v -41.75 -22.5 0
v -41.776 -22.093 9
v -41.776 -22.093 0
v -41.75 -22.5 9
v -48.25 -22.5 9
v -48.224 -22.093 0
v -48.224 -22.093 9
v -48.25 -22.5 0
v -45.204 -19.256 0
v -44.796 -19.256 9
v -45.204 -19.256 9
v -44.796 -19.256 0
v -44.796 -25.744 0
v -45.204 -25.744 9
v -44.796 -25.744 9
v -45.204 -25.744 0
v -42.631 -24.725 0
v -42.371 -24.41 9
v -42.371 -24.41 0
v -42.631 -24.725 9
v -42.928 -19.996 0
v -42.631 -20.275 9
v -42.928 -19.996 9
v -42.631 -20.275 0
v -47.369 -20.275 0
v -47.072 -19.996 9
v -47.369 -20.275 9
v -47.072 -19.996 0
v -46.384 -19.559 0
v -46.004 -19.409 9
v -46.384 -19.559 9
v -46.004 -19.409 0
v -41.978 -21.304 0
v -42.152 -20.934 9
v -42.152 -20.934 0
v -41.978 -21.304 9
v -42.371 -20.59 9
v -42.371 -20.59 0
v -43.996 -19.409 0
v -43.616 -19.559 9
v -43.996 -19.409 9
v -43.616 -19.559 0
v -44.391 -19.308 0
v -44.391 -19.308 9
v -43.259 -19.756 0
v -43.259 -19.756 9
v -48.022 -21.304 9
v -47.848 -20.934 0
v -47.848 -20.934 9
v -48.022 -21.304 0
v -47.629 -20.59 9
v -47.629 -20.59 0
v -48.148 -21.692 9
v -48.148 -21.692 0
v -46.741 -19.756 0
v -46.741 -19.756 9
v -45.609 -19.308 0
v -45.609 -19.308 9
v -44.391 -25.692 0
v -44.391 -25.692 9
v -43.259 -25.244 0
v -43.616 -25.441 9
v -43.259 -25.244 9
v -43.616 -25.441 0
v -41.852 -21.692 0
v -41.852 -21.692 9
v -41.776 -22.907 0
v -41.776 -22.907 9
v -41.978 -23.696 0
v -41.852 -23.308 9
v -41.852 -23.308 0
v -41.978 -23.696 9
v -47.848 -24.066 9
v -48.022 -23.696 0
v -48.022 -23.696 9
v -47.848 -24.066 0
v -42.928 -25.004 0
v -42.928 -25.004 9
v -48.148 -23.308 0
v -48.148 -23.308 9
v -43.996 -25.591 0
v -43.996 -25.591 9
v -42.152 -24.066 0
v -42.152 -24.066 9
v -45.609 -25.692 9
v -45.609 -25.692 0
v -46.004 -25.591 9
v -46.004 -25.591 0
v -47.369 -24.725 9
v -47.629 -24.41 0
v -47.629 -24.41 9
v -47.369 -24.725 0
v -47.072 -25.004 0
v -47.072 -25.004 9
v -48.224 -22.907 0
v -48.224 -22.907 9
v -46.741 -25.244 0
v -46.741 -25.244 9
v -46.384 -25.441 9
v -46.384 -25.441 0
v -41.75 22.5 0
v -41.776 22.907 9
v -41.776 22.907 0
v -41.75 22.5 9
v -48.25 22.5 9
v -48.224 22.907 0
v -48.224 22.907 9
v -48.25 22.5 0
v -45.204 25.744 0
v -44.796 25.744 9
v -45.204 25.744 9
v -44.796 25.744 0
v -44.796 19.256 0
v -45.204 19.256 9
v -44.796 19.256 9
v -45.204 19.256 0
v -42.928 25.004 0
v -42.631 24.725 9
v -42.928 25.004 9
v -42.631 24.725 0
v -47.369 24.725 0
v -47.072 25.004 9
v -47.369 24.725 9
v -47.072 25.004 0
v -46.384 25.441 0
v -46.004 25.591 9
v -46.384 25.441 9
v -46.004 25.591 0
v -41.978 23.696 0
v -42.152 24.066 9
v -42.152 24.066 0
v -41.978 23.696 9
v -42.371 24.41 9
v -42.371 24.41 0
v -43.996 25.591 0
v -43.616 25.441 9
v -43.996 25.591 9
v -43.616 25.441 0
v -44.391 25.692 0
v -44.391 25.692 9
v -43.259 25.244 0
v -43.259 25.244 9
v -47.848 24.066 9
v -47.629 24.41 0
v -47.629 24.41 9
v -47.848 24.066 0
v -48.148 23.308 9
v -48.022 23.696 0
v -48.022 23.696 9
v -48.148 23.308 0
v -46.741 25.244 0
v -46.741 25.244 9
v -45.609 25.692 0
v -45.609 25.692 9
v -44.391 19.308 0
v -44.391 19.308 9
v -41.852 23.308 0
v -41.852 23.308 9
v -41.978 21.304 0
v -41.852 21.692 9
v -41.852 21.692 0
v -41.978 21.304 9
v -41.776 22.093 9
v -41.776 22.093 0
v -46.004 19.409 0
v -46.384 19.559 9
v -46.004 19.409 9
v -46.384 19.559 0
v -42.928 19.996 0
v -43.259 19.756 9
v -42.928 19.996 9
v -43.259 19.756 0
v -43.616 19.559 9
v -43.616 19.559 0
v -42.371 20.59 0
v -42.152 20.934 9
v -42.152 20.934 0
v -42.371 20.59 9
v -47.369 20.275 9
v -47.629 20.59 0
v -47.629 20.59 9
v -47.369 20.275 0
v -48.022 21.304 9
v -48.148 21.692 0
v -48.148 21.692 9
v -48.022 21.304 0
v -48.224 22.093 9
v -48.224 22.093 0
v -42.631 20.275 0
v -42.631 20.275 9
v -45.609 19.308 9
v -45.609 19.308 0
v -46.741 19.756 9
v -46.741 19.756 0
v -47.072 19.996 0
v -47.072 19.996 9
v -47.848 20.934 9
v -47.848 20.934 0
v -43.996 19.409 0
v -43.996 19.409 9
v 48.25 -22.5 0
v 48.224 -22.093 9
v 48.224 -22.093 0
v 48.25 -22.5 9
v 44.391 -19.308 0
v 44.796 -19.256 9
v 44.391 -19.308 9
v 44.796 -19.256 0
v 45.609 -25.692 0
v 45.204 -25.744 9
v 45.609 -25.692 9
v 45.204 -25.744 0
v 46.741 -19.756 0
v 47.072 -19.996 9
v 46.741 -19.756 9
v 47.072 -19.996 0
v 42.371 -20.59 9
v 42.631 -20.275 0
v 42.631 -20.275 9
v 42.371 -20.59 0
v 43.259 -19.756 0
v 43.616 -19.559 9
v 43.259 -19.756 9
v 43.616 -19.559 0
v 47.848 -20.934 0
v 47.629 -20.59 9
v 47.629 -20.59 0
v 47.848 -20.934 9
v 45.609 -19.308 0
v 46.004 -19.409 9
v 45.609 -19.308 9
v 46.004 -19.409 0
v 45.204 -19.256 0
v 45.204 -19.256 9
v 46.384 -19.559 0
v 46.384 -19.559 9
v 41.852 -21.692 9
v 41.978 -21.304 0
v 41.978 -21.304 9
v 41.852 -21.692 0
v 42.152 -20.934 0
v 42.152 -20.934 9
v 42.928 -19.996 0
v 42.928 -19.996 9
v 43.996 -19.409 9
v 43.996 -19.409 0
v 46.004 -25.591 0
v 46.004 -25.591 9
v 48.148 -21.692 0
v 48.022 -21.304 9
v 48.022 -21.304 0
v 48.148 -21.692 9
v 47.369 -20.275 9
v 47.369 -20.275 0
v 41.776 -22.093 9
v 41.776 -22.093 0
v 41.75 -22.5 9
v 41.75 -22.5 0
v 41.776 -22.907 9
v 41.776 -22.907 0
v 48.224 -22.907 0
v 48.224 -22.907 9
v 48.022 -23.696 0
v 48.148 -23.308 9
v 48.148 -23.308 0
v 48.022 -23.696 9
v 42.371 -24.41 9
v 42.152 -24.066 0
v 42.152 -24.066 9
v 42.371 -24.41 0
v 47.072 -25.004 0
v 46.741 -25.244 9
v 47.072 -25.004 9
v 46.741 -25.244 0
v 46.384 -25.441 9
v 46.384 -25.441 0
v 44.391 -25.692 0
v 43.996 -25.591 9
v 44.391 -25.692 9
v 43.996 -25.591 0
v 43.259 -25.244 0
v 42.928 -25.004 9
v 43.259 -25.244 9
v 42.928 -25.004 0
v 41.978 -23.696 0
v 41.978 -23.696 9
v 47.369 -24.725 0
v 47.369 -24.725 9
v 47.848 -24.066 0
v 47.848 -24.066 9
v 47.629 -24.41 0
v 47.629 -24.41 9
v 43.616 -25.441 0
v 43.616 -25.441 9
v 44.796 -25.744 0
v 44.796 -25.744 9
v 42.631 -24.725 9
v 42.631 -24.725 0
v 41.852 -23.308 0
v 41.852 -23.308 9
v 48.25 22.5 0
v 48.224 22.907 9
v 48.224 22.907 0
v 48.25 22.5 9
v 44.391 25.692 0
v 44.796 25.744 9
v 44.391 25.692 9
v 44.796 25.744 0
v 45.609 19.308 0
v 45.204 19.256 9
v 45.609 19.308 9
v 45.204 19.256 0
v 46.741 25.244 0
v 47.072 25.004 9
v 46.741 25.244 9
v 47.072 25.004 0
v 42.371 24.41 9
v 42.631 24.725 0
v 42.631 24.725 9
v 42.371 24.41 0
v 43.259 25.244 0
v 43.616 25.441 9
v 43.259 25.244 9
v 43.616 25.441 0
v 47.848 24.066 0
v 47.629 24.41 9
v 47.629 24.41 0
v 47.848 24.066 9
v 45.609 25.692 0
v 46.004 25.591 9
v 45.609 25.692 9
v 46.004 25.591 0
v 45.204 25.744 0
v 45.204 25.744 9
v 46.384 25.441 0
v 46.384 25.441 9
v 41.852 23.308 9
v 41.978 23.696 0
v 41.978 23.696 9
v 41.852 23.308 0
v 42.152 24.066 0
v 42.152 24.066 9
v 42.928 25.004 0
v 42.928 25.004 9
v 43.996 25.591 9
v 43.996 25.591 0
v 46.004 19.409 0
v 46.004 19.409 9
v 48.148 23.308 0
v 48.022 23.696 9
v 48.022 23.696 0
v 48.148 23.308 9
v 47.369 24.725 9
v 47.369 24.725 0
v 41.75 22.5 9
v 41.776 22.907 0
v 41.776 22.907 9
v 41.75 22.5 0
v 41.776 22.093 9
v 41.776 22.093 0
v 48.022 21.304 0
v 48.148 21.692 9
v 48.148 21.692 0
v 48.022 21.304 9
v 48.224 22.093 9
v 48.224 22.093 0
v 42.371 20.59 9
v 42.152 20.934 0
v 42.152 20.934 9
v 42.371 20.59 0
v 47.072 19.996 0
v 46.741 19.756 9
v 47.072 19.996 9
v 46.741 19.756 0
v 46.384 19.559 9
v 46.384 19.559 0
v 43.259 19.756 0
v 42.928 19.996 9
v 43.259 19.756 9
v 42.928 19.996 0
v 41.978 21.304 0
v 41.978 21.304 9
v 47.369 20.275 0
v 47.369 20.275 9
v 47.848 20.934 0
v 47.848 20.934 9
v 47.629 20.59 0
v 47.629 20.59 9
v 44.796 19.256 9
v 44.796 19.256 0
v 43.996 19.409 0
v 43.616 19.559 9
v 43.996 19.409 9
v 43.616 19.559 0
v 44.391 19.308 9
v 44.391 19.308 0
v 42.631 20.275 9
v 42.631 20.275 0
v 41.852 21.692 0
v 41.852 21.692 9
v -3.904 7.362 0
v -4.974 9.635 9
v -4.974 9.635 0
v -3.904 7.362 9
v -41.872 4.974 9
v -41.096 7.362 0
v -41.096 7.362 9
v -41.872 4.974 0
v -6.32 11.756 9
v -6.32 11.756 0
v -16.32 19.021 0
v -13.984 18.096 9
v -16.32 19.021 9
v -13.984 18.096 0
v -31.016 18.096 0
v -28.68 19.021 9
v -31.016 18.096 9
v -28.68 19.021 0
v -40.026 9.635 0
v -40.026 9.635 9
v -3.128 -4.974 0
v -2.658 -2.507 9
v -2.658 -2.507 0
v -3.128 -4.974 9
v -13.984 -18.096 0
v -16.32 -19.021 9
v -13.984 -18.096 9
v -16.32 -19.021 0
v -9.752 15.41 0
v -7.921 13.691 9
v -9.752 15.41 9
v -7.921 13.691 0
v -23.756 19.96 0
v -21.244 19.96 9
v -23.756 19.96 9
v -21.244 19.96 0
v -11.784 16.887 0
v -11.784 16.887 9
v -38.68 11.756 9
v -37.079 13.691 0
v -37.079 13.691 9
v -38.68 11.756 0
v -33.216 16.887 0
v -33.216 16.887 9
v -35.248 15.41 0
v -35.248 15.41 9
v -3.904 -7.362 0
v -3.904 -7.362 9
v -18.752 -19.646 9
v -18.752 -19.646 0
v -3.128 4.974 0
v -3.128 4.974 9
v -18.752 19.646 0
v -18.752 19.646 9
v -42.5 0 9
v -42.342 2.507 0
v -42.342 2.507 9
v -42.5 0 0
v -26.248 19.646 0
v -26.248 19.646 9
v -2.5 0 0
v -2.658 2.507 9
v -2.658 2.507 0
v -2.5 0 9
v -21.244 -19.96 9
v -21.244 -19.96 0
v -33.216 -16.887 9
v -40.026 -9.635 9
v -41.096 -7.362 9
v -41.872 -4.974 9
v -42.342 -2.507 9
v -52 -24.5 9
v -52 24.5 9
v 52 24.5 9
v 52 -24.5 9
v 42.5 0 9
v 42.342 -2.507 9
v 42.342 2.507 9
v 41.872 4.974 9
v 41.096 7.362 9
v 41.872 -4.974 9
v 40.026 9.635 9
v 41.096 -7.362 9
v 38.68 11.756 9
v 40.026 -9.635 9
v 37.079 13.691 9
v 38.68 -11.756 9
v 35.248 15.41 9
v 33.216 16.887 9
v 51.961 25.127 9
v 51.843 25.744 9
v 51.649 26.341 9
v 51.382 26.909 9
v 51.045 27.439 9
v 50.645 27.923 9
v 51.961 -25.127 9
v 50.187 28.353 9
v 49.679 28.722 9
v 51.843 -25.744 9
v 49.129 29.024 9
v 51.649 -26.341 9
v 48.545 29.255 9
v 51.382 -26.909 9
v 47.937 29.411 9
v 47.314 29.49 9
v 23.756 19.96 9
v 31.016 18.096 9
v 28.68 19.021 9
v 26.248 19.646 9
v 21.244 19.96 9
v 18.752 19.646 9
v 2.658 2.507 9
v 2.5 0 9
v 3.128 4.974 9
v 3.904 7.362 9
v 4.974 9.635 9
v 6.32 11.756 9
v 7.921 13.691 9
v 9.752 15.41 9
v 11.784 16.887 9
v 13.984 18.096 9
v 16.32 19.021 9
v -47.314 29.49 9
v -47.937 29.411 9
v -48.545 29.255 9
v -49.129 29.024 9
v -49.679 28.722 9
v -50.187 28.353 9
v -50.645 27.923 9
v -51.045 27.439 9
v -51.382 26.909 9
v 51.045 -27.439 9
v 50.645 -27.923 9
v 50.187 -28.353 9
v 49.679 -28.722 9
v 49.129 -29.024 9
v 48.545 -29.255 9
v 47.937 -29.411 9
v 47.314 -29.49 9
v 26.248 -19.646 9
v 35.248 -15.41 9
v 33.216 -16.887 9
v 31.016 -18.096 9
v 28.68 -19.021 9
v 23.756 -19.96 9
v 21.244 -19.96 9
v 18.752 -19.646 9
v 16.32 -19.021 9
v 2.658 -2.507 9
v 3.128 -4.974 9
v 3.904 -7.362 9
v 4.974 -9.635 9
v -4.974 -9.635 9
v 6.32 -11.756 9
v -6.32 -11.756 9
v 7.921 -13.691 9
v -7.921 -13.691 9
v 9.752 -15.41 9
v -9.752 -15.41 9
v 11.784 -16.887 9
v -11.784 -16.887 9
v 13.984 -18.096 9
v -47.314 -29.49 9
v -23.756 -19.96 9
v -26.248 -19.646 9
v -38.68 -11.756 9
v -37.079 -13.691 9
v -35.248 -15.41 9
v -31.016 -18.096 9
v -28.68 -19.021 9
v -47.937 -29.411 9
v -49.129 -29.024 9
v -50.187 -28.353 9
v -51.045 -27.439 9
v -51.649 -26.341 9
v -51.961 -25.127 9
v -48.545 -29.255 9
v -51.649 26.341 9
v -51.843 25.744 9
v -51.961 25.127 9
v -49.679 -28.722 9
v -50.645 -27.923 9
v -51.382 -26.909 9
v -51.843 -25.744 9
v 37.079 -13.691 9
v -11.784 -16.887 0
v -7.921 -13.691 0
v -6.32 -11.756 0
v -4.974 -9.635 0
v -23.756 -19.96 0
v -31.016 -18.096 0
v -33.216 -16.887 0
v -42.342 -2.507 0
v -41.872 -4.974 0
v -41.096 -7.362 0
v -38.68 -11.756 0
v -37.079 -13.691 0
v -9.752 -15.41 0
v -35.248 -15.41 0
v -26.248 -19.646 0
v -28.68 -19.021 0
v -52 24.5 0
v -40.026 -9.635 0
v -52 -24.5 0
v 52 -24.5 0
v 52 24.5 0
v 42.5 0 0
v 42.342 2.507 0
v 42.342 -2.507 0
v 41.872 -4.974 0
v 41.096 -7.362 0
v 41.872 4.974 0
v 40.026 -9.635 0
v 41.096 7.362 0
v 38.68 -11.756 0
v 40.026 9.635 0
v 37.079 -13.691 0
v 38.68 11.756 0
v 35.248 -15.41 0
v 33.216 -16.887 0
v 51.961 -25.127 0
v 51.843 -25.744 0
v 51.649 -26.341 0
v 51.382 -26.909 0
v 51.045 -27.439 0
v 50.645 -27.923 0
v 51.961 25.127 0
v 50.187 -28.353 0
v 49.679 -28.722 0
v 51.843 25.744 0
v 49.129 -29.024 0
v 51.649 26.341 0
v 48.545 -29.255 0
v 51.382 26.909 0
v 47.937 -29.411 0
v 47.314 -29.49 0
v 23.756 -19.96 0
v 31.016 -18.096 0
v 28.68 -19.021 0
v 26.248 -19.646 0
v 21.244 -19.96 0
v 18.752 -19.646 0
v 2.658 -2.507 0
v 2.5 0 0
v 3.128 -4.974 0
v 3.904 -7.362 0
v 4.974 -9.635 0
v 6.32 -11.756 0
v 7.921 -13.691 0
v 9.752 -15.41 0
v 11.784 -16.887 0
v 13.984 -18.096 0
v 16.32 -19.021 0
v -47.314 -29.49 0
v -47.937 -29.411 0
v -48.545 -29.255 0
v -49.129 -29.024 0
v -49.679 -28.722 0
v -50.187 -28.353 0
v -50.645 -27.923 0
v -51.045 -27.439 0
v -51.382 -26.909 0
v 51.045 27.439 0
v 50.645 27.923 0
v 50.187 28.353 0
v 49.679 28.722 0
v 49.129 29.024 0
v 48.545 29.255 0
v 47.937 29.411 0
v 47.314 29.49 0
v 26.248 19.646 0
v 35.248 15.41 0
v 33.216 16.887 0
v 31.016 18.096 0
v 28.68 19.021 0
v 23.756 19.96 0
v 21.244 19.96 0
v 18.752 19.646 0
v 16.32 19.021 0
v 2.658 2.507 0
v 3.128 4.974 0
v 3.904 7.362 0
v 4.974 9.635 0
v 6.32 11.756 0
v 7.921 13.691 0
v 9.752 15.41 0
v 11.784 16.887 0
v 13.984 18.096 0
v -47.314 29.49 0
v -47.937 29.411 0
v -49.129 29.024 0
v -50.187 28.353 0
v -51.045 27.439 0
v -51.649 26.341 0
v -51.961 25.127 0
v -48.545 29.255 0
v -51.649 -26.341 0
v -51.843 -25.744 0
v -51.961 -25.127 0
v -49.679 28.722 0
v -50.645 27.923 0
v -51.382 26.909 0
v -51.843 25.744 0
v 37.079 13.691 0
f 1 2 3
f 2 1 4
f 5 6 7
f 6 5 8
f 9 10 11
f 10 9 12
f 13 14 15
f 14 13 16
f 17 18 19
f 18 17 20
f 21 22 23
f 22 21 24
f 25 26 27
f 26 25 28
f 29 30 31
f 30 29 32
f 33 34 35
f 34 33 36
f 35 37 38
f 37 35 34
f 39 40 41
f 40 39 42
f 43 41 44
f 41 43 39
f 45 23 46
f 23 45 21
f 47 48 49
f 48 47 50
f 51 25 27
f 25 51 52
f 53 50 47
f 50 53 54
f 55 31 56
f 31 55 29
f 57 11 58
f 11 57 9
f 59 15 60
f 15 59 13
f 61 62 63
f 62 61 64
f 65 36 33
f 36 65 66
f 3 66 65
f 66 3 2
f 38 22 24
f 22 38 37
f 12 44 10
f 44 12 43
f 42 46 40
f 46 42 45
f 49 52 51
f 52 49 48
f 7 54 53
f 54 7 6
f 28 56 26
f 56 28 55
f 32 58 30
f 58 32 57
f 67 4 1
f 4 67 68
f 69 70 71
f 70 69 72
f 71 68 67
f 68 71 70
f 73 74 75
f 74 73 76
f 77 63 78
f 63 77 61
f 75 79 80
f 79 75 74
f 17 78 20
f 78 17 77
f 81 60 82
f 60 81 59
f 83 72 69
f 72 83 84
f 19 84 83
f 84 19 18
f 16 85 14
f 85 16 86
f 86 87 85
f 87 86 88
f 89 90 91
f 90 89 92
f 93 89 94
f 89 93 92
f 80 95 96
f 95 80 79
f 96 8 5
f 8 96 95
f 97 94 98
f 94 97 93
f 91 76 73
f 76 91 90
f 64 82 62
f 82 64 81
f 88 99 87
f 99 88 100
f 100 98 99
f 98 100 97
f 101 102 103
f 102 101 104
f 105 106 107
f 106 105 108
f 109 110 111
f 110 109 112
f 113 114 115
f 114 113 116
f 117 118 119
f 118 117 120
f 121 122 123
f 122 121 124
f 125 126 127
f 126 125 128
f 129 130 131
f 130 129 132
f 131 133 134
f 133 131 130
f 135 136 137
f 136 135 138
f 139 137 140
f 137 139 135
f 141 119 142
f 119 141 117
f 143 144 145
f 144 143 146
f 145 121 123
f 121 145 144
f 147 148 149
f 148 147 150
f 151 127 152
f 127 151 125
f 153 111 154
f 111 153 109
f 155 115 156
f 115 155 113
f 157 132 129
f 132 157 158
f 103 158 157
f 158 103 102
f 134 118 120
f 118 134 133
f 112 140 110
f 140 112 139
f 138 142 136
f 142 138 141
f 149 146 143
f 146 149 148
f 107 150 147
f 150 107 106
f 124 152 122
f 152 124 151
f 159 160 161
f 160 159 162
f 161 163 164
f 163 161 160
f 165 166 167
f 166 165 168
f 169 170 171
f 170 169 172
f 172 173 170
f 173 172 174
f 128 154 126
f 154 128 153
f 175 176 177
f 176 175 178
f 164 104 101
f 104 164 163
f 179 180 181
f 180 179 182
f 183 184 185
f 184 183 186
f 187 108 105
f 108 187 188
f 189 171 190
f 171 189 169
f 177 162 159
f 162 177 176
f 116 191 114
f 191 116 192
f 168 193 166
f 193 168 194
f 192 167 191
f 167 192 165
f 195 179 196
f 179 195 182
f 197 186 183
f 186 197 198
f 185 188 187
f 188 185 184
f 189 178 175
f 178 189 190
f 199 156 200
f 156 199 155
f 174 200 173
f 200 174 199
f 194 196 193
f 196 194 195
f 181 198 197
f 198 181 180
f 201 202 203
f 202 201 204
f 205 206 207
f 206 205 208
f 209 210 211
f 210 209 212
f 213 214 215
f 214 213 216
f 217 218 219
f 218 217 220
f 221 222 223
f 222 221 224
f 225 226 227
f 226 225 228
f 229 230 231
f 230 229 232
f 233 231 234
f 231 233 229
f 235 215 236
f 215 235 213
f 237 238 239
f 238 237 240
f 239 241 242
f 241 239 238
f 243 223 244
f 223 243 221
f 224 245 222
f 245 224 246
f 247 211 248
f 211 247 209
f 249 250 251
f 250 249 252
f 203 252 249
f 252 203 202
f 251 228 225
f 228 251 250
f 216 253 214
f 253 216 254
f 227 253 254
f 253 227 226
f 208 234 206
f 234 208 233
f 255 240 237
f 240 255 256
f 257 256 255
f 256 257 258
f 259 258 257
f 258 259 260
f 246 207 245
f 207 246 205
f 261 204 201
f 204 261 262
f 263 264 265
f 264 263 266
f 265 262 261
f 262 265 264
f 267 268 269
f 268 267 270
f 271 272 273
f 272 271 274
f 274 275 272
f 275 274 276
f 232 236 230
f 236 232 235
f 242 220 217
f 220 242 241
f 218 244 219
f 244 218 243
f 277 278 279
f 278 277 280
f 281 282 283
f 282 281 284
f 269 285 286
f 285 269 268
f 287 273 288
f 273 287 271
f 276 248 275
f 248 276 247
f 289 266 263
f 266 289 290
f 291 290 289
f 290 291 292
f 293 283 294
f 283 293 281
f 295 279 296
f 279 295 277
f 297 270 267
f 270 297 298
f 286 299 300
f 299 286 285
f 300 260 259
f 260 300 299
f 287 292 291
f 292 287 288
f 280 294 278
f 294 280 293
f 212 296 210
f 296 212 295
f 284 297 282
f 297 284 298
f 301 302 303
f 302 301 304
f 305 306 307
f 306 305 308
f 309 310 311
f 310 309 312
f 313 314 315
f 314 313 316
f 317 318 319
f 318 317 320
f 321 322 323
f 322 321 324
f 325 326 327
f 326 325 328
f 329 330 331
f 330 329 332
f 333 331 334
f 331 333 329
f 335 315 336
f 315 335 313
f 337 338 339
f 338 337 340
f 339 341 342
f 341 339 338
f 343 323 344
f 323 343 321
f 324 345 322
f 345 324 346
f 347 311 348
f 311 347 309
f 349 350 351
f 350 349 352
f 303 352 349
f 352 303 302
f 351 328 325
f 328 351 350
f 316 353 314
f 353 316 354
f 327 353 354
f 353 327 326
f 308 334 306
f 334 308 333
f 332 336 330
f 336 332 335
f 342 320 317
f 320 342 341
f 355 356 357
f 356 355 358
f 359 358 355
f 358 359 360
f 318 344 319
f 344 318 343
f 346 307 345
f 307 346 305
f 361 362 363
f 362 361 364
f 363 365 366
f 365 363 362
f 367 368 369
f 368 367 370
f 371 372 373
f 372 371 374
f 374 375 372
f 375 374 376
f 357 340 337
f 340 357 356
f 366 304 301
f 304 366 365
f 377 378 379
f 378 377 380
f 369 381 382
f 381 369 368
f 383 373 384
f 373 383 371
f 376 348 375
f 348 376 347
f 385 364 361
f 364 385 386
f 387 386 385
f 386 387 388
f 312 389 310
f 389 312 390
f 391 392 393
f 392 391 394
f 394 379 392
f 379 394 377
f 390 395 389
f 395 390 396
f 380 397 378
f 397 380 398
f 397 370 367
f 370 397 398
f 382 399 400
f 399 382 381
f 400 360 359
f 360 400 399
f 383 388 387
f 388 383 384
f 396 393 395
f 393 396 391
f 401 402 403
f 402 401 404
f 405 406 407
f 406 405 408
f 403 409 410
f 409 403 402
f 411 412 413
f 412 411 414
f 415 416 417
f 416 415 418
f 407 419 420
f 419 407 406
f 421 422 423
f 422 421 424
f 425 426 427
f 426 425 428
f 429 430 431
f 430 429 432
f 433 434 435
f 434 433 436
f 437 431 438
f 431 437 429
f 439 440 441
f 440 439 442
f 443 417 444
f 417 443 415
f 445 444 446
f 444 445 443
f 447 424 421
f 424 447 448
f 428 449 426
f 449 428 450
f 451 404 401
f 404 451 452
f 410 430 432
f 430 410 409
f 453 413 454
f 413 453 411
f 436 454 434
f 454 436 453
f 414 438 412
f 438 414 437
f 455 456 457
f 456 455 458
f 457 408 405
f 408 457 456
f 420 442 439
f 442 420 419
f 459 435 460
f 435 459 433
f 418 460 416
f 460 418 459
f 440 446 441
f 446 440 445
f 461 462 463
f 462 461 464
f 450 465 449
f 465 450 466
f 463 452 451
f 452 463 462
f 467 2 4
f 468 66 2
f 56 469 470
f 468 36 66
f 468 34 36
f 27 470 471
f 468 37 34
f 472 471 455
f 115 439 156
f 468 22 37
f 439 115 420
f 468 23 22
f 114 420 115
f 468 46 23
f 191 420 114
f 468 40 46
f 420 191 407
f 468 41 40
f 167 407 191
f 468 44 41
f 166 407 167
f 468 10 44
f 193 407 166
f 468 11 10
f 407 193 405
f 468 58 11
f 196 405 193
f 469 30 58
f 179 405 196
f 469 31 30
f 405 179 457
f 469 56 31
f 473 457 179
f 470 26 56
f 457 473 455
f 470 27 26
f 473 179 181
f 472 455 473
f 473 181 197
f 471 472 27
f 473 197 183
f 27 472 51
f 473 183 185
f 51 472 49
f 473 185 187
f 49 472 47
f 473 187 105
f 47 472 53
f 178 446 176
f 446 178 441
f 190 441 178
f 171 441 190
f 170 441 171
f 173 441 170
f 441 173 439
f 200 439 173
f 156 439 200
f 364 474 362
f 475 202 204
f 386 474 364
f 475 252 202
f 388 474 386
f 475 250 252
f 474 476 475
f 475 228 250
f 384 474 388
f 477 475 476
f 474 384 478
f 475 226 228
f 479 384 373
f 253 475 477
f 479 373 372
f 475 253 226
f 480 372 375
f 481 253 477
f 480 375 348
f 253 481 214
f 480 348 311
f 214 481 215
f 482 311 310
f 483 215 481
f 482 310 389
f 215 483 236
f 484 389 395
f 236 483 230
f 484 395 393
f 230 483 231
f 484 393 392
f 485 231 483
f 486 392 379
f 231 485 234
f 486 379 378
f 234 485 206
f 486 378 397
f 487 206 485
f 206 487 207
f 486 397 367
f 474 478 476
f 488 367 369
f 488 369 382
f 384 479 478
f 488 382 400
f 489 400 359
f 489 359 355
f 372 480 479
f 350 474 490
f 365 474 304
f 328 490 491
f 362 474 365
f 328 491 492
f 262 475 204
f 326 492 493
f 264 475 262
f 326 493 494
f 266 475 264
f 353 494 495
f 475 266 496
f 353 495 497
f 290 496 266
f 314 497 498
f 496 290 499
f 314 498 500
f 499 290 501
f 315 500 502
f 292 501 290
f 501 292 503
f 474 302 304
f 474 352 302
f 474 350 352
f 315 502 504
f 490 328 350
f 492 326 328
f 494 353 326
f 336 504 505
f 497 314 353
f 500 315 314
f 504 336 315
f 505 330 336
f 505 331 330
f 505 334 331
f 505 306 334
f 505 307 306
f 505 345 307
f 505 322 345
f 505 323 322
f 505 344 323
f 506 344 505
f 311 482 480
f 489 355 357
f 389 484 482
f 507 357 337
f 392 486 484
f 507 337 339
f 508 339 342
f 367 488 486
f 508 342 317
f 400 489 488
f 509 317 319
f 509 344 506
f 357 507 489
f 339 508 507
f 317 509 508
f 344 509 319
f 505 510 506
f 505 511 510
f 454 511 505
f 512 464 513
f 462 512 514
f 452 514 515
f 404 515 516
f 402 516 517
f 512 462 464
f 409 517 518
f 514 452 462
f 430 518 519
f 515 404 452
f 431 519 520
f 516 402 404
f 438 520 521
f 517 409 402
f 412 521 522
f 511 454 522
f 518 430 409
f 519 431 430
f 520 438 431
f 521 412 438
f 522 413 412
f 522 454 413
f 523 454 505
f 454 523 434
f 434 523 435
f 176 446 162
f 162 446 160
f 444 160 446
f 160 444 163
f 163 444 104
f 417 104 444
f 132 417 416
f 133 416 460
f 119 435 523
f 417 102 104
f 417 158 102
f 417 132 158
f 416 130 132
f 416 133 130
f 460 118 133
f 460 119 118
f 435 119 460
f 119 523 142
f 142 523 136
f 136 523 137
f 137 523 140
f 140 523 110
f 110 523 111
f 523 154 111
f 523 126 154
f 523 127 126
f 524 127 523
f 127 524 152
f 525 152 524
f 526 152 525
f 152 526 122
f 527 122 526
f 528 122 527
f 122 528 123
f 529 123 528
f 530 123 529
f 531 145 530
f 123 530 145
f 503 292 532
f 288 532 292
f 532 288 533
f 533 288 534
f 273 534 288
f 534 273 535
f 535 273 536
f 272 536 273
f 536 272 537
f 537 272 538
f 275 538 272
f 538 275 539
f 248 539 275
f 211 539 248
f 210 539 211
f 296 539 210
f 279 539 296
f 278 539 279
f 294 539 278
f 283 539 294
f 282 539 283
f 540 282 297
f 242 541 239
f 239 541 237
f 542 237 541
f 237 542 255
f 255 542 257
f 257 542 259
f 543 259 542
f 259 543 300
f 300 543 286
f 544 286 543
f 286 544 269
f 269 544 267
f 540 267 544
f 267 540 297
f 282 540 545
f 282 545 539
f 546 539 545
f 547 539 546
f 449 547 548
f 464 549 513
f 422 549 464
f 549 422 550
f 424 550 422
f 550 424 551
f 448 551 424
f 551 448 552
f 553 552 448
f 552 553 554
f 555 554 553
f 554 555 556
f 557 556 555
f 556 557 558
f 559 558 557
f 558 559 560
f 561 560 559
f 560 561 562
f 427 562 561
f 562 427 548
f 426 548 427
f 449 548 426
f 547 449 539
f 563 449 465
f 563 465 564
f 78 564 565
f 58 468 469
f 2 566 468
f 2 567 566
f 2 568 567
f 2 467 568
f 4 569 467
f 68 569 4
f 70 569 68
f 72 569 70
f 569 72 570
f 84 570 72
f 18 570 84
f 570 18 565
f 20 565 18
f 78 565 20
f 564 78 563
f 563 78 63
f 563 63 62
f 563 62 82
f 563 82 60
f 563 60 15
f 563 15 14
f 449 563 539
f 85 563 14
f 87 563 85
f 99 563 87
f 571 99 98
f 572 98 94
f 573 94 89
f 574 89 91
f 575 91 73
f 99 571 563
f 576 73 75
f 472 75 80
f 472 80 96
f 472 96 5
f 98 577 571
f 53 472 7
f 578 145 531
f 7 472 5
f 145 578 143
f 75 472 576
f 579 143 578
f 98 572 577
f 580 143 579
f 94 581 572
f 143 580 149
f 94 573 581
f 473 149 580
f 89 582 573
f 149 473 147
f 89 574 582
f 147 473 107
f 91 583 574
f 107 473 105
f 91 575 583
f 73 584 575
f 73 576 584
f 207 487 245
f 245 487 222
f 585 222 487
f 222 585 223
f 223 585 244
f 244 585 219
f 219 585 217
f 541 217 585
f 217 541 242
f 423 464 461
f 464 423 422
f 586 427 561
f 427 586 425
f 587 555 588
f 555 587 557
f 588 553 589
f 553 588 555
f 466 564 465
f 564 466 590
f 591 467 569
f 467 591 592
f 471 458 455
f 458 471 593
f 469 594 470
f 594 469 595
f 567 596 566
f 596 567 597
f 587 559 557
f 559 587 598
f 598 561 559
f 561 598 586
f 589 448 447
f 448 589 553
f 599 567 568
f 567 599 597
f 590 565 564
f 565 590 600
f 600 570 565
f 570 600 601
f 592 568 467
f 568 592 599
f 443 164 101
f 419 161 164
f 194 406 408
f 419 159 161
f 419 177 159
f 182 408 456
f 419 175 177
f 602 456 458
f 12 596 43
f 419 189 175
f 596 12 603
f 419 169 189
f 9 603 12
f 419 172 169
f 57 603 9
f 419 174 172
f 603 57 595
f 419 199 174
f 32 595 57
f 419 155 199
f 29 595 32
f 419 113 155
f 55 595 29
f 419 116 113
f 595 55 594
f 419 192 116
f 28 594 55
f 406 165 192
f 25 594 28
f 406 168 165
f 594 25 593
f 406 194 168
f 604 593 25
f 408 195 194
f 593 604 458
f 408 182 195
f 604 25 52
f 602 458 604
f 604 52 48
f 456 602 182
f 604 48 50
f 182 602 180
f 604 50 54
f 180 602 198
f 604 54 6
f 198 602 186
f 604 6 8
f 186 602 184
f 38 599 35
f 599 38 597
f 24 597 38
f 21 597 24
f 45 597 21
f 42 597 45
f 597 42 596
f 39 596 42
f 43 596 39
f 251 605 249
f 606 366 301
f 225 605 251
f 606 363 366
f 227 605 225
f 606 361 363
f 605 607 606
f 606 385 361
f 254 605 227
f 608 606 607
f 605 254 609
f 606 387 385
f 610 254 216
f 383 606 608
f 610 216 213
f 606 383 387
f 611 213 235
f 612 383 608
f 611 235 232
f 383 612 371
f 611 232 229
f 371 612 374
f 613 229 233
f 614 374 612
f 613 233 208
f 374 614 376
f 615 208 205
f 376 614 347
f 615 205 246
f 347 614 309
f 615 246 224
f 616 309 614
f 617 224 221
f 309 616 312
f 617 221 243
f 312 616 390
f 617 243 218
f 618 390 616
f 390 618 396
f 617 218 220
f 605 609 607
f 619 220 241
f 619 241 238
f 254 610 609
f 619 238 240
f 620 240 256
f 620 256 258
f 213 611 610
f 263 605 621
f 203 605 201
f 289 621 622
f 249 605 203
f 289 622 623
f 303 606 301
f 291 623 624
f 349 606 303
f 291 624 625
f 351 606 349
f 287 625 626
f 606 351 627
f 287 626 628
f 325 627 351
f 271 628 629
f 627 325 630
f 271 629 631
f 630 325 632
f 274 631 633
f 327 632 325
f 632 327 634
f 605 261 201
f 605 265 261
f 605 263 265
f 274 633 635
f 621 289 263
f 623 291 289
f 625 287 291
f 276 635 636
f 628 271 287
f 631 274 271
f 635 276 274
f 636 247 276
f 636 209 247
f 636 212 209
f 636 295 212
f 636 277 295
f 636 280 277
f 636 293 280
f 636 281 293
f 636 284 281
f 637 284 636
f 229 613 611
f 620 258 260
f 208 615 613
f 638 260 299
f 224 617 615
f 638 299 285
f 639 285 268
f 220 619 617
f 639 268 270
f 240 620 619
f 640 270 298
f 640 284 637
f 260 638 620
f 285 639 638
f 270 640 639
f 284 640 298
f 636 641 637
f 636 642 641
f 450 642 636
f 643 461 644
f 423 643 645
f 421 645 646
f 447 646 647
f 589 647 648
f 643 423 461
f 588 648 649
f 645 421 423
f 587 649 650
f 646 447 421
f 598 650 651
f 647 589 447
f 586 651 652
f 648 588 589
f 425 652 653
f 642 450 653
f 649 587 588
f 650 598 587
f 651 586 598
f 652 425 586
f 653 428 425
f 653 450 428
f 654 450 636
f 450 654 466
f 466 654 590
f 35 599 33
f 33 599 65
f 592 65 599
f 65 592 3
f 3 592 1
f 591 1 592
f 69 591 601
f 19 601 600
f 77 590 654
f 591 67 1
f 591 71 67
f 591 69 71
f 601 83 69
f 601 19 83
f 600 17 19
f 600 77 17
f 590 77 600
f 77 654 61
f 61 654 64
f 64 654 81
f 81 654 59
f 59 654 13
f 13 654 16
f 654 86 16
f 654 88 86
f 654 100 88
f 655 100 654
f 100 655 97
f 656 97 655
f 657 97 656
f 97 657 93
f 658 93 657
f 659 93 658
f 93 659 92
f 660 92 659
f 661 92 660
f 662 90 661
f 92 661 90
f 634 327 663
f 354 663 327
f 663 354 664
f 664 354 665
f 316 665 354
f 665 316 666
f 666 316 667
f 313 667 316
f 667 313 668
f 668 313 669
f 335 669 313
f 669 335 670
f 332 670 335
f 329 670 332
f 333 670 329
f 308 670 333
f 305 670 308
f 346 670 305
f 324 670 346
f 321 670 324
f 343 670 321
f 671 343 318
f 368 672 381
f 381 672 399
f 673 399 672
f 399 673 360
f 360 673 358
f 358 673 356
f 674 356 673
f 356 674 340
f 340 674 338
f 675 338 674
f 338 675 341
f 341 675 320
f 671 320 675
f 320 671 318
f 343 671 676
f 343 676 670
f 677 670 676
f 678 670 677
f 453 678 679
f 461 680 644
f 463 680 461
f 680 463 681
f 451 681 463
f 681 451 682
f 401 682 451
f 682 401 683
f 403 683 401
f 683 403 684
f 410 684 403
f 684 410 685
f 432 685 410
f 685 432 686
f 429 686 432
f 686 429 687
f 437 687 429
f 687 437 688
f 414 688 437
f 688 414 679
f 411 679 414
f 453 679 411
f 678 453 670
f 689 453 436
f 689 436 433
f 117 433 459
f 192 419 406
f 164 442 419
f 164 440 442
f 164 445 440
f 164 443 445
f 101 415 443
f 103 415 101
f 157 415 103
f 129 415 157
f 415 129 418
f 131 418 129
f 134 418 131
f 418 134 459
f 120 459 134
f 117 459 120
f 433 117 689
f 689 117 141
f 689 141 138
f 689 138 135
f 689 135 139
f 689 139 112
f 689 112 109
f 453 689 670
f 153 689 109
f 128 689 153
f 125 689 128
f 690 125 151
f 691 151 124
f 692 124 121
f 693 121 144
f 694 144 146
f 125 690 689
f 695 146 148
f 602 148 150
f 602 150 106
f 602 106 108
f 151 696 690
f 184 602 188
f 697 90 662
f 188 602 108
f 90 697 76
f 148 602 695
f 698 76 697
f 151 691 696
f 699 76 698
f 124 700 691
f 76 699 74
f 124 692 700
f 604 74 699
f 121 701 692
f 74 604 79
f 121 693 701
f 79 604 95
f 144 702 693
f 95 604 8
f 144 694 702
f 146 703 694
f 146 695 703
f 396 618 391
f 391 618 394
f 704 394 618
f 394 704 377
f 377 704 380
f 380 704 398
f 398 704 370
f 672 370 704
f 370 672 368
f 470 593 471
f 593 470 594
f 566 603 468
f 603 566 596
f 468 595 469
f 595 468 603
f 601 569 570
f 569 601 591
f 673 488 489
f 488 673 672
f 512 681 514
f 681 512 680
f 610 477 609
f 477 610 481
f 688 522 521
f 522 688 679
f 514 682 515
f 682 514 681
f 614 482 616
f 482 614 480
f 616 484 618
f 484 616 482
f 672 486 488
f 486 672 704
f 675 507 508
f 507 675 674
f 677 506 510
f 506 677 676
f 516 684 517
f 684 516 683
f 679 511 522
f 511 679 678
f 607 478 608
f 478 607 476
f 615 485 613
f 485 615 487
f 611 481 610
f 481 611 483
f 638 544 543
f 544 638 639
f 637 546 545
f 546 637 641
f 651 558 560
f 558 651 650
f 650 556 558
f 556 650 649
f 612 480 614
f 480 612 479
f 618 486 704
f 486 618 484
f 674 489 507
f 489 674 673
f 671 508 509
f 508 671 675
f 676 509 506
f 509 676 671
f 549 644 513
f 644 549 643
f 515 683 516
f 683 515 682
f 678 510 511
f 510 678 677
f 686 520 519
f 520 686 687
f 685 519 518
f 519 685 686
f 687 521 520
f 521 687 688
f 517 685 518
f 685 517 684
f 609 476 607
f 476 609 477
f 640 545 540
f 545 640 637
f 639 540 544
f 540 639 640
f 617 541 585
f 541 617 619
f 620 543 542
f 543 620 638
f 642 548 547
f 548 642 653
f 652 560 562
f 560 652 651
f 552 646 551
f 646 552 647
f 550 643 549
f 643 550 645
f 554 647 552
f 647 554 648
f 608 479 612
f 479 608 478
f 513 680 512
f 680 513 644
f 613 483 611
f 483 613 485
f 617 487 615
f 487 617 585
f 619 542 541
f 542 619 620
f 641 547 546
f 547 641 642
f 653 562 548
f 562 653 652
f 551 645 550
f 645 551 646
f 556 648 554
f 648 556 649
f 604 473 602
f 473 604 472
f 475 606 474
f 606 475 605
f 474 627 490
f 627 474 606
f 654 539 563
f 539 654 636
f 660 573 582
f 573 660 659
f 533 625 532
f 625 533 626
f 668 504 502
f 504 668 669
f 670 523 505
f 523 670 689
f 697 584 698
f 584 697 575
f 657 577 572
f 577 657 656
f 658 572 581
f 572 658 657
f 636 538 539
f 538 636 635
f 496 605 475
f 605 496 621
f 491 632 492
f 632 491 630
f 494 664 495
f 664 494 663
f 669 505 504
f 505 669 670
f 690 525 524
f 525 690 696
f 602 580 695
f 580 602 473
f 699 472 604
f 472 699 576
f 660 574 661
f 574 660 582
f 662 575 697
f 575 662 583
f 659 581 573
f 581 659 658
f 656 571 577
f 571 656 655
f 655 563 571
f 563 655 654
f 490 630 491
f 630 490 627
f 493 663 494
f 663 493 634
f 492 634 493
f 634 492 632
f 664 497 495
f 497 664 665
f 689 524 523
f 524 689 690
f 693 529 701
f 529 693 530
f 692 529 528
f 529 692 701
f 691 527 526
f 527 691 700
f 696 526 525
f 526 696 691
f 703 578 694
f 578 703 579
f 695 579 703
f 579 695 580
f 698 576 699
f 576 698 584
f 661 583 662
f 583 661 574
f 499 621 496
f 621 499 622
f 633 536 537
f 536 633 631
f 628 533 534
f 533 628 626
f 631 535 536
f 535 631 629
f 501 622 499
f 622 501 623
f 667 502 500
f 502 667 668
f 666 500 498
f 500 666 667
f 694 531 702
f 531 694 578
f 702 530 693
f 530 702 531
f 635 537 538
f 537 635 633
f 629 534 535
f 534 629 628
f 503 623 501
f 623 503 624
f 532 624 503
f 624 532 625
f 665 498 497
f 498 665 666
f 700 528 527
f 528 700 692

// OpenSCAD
$fn = 50;


difference() {
	union() {
		hull() {
			translate(v = [-47.0000000000, 24.5000000000, 0]) {
				cylinder(h = 9, r = 5);
			}
			translate(v = [47.0000000000, 24.5000000000, 0]) {
				cylinder(h = 9, r = 5);
			}
			translate(v = [-47.0000000000, -24.5000000000, 0]) {
				cylinder(h = 9, r = 5);
			}
			translate(v = [47.0000000000, -24.5000000000, 0]) {
				cylinder(h = 9, r = 5);
			}
		}
	}
	union() {
		#translate(v = [-45.0000000000, -22.5000000000, -100.0000000000]) {
			cylinder(h = 200, r = 3.2500000000);
		}
		#translate(v = [-45.0000000000, 22.5000000000, -100.0000000000]) {
			cylinder(h = 200, r = 3.2500000000);
		}
		#translate(v = [45.0000000000, -22.5000000000, -100.0000000000]) {
			cylinder(h = 200, r = 3.2500000000);
		}
		#translate(v = [45.0000000000, 22.5000000000, -100.0000000000]) {
			cylinder(h = 200, r = 3.2500000000);
		}
		#translate(v = [-22.5000000000, 0, 0]) {
			cylinder(h = 9, r = 20.0000000000);
		}
		#translate(v = [22.5000000000, 0, 0]) {
			cylinder(h = 9, r = 20.0000000000);
		}
	}
}
